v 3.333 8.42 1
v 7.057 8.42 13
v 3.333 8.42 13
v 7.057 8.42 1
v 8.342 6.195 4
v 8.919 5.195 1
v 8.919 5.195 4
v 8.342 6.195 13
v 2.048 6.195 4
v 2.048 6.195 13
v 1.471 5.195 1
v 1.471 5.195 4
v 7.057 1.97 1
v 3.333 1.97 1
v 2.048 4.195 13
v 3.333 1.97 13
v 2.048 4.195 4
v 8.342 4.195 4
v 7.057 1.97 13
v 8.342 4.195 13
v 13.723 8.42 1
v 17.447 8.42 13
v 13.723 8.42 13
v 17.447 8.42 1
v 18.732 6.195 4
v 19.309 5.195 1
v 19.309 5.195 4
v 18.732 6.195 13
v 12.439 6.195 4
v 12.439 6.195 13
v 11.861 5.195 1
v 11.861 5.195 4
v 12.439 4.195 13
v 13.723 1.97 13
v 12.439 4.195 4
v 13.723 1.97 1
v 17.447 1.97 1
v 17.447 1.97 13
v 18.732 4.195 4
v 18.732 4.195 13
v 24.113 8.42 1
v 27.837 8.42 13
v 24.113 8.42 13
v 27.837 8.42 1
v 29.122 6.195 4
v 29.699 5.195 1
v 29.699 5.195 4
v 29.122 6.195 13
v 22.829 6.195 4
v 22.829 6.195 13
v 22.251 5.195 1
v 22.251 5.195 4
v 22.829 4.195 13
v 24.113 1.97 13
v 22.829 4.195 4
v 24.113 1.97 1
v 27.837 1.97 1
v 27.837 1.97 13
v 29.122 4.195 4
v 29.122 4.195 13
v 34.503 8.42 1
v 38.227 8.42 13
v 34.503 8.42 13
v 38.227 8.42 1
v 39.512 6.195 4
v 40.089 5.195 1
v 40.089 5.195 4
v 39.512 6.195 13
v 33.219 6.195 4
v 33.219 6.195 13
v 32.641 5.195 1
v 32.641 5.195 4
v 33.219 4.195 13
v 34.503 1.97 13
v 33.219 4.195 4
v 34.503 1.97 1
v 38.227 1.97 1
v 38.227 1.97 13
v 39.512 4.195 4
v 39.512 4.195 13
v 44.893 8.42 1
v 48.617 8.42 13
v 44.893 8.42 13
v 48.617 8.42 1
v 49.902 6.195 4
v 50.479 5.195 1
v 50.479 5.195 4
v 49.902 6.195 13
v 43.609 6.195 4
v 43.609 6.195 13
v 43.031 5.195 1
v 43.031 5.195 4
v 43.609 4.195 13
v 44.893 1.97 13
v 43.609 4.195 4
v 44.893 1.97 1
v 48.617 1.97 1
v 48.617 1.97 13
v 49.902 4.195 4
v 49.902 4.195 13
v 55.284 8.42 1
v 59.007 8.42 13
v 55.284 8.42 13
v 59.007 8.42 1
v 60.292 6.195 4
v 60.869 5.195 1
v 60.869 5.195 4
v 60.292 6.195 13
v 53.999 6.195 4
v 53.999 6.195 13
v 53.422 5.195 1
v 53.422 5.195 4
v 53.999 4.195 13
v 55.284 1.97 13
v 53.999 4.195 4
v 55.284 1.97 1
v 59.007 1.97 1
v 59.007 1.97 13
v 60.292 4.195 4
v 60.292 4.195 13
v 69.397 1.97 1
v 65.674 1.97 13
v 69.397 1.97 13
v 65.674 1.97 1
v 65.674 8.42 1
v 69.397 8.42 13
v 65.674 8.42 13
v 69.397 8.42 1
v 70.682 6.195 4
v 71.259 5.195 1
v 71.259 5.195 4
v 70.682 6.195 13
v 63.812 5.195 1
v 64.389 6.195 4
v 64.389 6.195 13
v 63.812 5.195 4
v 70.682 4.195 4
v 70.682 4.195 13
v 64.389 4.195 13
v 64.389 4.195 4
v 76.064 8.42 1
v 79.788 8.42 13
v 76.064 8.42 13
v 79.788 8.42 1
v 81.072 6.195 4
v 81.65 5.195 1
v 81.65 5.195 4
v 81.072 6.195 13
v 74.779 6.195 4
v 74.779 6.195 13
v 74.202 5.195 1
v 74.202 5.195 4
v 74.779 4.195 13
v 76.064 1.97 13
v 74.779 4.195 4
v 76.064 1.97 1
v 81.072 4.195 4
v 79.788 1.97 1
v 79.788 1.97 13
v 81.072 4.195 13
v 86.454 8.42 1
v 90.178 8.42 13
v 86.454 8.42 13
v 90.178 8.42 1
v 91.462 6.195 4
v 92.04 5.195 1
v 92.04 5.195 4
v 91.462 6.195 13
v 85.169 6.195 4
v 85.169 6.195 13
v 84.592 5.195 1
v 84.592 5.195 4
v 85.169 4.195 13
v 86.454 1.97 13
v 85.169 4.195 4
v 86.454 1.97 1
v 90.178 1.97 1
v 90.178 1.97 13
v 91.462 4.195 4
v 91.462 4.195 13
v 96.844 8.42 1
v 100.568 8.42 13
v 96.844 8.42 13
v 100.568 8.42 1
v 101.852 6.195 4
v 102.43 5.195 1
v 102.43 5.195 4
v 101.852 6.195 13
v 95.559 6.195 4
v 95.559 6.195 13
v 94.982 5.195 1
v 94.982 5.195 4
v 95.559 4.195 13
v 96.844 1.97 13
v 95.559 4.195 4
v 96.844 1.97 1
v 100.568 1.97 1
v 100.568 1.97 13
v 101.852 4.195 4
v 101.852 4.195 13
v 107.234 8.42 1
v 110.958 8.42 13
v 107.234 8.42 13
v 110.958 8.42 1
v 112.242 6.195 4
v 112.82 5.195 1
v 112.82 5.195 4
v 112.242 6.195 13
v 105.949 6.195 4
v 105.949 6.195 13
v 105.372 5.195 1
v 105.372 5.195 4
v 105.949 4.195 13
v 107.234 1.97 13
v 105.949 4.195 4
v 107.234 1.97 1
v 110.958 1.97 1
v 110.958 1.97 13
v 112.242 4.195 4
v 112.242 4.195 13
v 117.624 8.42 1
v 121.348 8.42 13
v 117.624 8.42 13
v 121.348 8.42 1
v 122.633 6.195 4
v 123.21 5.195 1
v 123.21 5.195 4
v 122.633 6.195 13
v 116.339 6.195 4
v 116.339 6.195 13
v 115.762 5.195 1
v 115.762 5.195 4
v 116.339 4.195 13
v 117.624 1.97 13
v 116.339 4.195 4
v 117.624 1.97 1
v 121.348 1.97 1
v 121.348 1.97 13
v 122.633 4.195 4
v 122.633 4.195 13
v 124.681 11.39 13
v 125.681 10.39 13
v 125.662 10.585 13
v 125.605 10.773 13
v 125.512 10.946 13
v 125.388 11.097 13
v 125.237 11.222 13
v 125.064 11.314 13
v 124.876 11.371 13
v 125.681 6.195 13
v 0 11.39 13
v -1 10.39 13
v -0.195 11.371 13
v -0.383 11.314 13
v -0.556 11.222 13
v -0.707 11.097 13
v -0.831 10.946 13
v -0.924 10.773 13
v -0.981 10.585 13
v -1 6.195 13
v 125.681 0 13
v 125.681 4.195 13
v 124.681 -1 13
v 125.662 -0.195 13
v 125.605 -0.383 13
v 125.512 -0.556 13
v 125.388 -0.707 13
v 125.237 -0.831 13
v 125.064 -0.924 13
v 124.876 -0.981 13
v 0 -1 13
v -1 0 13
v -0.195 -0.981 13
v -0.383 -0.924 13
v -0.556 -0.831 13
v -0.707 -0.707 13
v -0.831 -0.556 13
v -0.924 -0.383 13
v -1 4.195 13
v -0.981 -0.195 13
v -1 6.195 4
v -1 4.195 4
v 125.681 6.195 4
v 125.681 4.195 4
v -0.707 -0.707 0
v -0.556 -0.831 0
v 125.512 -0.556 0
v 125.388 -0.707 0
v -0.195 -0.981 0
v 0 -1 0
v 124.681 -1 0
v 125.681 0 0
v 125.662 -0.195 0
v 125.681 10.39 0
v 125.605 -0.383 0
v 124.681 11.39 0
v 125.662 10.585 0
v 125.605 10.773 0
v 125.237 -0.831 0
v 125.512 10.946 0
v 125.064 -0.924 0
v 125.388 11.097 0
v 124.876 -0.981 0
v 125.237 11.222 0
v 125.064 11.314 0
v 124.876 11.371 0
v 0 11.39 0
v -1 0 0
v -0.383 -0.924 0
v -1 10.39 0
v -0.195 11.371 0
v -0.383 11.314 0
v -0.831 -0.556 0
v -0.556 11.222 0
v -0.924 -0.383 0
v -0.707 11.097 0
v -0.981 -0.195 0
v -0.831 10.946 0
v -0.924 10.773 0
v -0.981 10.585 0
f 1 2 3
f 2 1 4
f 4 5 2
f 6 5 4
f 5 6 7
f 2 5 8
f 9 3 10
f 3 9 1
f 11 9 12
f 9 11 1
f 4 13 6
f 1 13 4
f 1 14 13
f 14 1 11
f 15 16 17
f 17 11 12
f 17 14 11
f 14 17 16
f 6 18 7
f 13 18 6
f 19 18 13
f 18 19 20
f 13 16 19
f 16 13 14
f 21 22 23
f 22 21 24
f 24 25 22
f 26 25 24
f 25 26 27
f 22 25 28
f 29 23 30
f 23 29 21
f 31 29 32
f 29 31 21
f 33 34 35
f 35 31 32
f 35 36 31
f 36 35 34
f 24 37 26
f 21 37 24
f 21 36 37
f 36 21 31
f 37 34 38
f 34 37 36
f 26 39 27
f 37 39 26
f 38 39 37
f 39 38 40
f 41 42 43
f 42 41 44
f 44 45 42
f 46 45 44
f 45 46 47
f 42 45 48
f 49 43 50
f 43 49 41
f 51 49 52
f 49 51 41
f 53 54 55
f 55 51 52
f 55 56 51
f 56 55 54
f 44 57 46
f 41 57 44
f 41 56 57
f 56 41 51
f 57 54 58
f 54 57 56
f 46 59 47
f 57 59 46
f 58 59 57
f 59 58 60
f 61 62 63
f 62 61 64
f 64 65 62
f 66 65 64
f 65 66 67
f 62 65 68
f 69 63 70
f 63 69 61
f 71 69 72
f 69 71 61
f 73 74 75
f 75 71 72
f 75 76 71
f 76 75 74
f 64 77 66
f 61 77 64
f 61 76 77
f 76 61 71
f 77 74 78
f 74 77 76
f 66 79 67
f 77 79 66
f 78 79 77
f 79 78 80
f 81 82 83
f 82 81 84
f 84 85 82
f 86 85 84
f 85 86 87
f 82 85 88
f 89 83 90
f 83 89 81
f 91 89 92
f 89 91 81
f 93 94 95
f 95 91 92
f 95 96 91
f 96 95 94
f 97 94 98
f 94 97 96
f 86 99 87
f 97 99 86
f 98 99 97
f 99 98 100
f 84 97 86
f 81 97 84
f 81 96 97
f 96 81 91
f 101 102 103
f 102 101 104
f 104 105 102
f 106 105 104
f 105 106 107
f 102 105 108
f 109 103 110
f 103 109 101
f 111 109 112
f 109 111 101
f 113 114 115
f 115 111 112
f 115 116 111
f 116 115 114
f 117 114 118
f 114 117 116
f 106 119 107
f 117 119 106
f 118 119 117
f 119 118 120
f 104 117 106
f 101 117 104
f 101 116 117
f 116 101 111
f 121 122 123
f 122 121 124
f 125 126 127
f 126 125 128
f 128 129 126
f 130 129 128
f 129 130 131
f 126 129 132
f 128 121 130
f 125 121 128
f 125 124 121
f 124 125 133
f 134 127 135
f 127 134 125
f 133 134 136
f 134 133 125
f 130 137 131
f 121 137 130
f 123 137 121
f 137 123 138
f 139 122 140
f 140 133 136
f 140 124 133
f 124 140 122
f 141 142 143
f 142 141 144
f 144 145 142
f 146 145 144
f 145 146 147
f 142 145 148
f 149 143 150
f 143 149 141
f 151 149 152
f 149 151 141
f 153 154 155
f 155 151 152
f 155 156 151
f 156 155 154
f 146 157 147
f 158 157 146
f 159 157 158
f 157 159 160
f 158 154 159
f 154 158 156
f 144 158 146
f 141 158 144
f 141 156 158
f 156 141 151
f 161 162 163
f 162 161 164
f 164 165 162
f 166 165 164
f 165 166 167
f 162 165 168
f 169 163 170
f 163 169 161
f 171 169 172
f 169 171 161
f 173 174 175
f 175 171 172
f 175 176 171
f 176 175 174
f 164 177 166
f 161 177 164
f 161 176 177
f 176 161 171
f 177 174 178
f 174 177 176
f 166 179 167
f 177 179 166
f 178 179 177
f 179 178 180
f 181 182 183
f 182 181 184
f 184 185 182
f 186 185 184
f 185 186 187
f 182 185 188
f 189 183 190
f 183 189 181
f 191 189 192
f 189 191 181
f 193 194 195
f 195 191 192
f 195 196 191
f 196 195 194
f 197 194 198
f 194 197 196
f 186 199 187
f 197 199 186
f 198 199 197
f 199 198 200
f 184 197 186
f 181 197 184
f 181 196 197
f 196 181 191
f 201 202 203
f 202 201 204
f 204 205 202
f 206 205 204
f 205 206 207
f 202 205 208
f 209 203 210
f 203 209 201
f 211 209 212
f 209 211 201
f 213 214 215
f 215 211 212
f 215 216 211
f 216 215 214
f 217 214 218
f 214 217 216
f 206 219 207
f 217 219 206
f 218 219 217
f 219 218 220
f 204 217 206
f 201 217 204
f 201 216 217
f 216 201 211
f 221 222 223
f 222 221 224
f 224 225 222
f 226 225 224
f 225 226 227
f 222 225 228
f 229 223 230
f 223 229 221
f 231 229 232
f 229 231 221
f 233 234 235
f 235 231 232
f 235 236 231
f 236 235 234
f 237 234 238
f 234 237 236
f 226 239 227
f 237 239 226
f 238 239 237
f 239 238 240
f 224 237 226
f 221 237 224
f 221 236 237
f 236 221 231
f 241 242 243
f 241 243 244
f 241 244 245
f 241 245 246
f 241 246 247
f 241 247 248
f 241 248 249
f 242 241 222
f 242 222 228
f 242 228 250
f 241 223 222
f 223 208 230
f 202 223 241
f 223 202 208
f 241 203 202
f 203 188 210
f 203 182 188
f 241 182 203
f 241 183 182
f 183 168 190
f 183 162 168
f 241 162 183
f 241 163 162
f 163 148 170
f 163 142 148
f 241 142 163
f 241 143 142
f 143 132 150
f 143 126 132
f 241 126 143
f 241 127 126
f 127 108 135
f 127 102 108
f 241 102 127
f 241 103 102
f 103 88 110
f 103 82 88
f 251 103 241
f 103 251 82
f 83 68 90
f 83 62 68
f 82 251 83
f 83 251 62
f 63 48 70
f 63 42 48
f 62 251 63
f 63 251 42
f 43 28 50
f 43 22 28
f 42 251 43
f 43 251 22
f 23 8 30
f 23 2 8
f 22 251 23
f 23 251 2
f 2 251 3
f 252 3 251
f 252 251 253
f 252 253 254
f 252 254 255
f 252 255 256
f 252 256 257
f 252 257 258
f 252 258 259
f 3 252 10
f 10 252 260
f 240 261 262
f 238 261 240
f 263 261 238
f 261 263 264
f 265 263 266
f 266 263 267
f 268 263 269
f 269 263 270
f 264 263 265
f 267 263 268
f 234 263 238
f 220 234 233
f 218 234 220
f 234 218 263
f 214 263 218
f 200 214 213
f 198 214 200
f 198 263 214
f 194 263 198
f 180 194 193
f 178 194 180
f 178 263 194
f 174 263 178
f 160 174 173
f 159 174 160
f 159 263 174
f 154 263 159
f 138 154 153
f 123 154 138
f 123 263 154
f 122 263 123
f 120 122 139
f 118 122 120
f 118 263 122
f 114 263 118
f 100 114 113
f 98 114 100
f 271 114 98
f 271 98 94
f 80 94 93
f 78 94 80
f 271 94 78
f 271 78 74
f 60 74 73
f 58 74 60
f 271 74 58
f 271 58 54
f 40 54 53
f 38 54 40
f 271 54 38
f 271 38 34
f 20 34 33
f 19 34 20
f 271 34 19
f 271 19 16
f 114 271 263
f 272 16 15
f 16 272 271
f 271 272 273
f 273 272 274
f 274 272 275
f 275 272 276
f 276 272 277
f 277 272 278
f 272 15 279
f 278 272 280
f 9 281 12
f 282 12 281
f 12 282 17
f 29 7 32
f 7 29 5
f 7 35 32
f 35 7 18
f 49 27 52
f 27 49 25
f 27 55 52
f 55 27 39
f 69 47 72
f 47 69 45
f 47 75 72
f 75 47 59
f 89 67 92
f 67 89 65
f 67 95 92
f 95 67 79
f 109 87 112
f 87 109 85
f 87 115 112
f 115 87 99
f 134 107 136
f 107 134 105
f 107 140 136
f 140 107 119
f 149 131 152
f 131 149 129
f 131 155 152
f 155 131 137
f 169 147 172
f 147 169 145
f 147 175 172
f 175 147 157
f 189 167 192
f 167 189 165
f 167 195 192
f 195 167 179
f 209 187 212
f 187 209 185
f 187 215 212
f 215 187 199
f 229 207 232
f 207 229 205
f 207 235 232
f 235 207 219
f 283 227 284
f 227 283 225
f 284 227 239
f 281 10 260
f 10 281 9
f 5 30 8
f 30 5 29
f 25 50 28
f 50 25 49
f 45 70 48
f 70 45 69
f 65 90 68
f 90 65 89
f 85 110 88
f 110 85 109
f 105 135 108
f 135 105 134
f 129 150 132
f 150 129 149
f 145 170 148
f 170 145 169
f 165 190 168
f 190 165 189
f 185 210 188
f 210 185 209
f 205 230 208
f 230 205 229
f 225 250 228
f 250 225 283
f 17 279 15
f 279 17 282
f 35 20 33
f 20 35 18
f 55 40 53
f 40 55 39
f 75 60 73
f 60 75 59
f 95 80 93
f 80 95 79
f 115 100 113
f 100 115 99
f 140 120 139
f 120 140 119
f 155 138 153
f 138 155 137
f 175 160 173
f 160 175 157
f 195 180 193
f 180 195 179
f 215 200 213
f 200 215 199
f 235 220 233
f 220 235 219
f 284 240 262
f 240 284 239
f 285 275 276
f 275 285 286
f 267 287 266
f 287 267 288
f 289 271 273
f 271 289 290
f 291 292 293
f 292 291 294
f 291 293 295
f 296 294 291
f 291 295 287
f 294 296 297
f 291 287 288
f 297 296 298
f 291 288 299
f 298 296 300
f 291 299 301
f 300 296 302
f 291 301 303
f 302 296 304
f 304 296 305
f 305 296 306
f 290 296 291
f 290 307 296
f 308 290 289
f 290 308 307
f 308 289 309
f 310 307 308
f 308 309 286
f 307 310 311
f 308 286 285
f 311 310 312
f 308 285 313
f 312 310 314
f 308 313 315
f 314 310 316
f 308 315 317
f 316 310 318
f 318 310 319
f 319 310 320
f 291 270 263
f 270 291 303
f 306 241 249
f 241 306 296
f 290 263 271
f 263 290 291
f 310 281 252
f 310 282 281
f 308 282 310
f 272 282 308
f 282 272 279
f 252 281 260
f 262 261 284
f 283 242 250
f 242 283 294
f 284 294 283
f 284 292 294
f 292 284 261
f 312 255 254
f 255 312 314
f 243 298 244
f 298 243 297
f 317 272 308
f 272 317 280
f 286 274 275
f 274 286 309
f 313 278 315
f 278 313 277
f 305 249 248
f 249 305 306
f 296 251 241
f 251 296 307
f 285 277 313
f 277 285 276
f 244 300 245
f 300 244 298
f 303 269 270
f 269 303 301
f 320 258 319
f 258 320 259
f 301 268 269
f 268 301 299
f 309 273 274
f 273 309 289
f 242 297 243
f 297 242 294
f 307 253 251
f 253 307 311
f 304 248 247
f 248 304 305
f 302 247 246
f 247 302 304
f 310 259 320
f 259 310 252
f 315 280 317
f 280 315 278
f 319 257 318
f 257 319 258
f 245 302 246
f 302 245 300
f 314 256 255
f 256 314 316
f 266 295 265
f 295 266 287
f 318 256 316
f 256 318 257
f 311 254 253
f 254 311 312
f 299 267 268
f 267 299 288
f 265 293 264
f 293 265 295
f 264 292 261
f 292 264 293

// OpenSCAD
/**
	Customisable hex bit holder 
	Copyring Mykhaylo Lytvynyuk March 2015
	http://mobilemodding.info
	Released under 
	Attribution - Non-Commercial - No Derivatives License

	*** March 16, 2015 Initial Version
*/

// number of rows
_row = 1;//[0,1,2,3,4,5,6,7,8,9,10,11,12,13,14,15] 					

// number of columns
_colum = 12;//[0,1,2,3,4,5,6,7,8,9,10,11,12,13,14,15]
 					
// mm, base height
_height = 12;

// mm, printer tolerance, can be negative, required to compensate specific printer contraction/expansion during print.
_tolerance = 0.1;

//mm, between sides and bit
_extraPadding = 3;

// Rounded corners
_rounded = 1;//[1:Yes,0:No]

// Determines if hole goes compeltely through the base
_holeThrough = 0;	//[1:Yes,0:No]	

// Make slot to add flex to the walls
_slotted = 1;//[1:Yes,0:No]

// mm, defines bit zise ( 6.35 is 1/4" )
_bitSize = 6.35;

/* [Hidden] */
// local vars
outerRadius = outRadius(_bitSize + _tolerance/2,6);
delta = outerRadius + _extraPadding;
width = ( _colum * (outerRadius + _extraPadding) );
depth = ( _row * (outerRadius + _extraPadding) );
minkowskiCylinderHeight = 1;

module assembly() {

difference() {
	base();
	for(yd = [1:_row]) {
		for(xd = [1:_colum]) {
				translate([(xd * delta)-(delta/2),(yd *delta)-(delta/2),_holeThrough?0:1]) hexBit();
		}
		if(_slotted){
			translate([-2,(yd *delta)-(delta/2) - 1,minkowskiCylinderHeight + _height - _height * 0.75]) cube([width + 4,2,_height*0.75],center=false);
		}
	}
}

}

module hexBit() {
	cylinder(h=_height+minkowskiCylinderHeight,r=outRadius(_bitSize/2 + _tolerance/2,6),$fn=6, center = false);
}

module base() {
	minkowski() {
		cube([width,depth,_height]);
		if(_rounded) cylinder(r=1,h=minkowskiCylinderHeight,$fn=32,center = false);
	}
}

// calculates outradious by given inradius
function outRadius(inradius, sides) = inradius / ( cos (180 / sides));

assembly();
